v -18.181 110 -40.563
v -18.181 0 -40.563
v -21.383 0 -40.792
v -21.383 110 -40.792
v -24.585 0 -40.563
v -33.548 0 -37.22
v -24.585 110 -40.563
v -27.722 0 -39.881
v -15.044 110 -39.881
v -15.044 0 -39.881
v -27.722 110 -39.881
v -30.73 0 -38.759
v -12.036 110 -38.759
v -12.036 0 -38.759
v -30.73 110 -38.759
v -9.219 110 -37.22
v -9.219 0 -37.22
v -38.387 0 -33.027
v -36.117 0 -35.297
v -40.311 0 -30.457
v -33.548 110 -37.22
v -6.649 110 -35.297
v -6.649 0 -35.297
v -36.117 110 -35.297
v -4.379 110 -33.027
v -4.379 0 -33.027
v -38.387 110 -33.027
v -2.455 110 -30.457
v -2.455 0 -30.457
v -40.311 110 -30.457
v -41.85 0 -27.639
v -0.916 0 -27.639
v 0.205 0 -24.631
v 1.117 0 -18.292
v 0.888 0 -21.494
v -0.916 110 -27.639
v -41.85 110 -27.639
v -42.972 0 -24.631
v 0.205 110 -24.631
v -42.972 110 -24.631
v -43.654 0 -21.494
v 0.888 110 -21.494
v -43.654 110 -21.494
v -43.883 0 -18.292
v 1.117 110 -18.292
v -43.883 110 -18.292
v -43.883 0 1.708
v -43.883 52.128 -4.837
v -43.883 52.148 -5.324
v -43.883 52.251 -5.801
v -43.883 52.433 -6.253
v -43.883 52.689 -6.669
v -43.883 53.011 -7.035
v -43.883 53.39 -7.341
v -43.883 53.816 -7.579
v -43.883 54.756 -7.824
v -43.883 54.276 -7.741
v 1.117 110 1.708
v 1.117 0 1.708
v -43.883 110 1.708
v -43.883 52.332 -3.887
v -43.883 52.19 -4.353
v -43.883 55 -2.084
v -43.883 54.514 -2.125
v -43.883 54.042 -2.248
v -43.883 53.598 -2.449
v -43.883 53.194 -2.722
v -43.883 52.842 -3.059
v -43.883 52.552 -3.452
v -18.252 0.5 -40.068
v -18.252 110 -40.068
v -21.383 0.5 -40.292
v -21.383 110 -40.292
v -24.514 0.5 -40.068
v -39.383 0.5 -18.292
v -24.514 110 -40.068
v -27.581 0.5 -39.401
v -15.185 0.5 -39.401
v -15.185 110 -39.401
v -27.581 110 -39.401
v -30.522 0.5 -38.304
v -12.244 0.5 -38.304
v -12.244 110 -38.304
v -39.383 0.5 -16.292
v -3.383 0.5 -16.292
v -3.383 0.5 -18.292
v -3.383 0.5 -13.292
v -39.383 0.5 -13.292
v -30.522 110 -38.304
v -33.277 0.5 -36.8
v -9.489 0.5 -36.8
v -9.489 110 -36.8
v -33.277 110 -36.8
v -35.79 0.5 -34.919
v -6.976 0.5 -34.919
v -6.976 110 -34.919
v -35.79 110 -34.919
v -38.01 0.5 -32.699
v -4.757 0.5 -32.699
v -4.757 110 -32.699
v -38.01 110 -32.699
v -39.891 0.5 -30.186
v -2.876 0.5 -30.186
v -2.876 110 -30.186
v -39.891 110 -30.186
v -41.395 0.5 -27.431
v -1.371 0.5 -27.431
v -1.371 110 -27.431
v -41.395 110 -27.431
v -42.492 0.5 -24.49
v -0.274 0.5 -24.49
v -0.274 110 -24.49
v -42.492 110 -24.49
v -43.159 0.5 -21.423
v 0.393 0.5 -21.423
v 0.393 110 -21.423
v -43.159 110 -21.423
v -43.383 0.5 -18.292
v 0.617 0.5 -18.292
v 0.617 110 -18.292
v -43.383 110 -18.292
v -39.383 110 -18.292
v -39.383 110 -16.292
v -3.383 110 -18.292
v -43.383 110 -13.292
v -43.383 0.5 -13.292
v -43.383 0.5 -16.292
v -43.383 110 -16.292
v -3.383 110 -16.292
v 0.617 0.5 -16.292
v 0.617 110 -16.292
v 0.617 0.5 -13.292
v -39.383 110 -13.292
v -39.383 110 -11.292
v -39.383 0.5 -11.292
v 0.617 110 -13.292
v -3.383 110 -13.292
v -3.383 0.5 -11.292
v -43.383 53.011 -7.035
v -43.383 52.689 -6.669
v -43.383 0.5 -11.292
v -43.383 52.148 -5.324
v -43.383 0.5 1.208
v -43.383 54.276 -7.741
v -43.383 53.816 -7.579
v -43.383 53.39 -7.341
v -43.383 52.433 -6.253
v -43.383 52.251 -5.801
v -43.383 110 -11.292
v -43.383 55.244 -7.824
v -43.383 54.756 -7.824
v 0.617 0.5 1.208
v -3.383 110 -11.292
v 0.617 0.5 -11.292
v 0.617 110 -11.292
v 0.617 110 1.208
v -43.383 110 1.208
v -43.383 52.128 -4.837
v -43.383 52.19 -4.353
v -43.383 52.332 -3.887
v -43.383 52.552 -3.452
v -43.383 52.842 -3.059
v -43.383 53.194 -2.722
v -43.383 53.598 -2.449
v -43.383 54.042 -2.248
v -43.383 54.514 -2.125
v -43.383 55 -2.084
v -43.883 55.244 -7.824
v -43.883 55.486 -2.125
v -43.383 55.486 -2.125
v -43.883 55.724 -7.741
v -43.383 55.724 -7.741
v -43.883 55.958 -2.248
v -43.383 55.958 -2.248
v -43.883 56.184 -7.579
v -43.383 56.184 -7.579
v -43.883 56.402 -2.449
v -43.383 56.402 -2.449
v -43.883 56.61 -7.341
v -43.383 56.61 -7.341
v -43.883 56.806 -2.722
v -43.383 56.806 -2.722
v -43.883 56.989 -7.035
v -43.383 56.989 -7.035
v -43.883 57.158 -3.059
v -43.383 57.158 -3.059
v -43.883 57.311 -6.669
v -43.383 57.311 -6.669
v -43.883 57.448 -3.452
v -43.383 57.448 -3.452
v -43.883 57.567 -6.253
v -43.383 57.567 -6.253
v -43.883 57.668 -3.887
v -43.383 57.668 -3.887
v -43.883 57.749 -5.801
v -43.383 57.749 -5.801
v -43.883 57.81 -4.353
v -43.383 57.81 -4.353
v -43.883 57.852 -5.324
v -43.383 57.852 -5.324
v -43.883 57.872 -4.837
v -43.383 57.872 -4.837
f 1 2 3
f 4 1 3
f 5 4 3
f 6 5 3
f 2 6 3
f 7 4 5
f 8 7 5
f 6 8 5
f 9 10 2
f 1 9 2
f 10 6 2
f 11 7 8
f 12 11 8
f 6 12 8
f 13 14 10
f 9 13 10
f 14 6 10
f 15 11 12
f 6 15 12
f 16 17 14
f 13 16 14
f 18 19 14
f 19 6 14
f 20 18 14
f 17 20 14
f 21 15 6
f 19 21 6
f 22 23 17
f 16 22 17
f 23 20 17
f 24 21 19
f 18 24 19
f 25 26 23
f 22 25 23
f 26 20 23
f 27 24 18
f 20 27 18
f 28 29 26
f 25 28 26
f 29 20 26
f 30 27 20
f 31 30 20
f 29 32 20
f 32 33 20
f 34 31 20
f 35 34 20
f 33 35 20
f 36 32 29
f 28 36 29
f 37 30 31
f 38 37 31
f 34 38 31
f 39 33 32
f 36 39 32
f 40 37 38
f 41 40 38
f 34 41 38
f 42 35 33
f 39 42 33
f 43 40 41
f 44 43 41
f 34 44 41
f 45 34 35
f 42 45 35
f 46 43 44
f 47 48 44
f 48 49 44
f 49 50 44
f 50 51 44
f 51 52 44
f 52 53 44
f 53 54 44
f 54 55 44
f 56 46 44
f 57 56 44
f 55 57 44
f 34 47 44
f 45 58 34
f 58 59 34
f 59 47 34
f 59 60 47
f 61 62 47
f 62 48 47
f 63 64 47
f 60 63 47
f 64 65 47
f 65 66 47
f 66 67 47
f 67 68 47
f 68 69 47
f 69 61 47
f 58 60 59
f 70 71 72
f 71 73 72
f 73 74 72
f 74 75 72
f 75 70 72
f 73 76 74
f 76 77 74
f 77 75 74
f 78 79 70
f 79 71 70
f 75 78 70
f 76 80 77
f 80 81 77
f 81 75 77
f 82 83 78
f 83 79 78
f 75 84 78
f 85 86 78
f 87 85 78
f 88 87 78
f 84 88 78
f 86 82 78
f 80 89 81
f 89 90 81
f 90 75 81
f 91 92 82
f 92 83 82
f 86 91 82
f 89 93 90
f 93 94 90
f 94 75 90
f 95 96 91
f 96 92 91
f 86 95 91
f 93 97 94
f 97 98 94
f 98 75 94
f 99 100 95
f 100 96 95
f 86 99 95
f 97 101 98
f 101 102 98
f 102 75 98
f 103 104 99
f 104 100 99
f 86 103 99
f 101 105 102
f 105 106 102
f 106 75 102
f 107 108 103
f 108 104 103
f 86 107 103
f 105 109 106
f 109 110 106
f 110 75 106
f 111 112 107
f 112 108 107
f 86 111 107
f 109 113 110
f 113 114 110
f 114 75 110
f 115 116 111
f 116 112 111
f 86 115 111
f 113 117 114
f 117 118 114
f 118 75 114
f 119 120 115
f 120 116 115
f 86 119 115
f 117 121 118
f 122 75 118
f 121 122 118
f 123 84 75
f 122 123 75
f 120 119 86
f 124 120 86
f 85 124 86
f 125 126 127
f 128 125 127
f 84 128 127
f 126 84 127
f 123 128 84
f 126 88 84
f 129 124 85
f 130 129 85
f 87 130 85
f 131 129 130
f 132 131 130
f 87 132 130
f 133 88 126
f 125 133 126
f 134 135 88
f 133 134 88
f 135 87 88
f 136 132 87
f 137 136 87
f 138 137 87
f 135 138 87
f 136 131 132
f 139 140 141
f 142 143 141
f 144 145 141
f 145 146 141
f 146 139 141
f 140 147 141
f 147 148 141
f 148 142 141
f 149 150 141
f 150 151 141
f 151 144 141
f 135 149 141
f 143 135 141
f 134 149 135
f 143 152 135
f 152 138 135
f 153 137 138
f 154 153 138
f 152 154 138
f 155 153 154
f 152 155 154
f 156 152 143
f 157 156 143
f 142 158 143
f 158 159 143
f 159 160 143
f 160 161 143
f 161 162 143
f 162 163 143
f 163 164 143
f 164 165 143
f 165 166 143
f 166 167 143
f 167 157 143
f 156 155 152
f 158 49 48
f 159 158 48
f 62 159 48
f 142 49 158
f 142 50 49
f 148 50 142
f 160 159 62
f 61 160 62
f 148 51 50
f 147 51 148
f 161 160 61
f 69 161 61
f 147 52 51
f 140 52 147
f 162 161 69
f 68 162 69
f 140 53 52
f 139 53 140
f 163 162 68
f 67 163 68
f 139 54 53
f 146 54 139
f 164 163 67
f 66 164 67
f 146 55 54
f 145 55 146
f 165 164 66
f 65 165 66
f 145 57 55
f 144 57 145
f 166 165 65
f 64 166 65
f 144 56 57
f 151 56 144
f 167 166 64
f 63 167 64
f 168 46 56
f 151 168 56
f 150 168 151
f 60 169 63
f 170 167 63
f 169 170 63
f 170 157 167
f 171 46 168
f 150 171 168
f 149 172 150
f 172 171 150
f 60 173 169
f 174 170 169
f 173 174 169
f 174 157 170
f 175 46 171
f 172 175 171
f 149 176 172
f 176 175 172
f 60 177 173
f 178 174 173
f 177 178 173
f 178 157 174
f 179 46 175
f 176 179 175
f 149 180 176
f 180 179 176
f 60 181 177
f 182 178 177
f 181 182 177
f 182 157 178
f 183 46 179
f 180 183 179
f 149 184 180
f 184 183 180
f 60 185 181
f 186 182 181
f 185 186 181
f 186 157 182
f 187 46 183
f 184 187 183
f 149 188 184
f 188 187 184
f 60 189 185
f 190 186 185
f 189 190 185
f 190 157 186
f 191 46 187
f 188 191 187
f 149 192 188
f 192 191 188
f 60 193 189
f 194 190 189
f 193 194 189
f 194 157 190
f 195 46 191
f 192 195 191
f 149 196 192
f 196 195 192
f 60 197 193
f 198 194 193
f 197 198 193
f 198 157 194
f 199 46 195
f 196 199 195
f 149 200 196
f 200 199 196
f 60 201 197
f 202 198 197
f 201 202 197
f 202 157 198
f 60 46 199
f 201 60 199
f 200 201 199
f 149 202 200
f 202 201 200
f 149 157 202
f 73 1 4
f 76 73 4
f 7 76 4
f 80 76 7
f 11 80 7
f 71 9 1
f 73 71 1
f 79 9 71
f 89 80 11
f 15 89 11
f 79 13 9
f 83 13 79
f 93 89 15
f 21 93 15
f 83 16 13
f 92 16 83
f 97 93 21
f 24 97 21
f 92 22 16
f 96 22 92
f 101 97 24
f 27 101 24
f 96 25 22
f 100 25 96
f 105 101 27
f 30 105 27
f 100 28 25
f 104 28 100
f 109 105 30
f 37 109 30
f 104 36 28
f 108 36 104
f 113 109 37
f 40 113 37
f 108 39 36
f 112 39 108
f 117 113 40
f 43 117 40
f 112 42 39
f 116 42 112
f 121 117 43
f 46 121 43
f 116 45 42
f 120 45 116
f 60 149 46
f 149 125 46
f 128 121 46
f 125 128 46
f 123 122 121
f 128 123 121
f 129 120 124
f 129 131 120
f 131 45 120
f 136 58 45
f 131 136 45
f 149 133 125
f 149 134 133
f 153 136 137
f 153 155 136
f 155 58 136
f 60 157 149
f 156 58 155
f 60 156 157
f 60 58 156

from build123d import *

# Parameters (mm, degrees)
BOSS_EXTRUDE1_DEPTH = 110
CUT_EXTRUDE1_DEPTH  = 109.5
SKETCH3_R           = 2.875
CUT_EXTRUDE2_DEPTH  = 5


with BuildPart() as part:
    # Sketch1 → Boss-Extrude1 (new body)
    with BuildSketch(Plane(origin=(0, 0, 0), x_dir=(1, 0, 0), z_dir=(0, 1, 0))):
        with BuildLine():
            Line((-43.883093525, -1.707733813), (1.116906475, -1.707733813))
            Line((1.116906475, -1.707733813), (1.116906475, 18.292266187))
            ThreePointArc((1.116906475, 18.292266187), (-21.383093525, 40.792266187), (-43.883093525, 18.292266187))
            Line((-43.883093525, 18.292266187), (-43.883093525, -1.707733813))
        make_face()
    extrude(amount=BOSS_EXTRUDE1_DEPTH)

    # Sketch2 → Cut-Extrude1 (cut)
    with BuildSketch(Plane(origin=(0, 110, 0), x_dir=(1, 0, 0), z_dir=(0, 1, 0))):
        with BuildLine():
            Line((-43.383093525, 16.292266187), (-43.383093525, 13.292266187))
            Line((-43.383093525, 13.292266187), (-39.383093525, 13.292266187))
            Line((-39.383093525, 13.292266187), (-39.383093525, 11.292266187))
            Line((-39.383093525, 11.292266187), (-43.383093525, 11.292266187))
            Line((-43.383093525, 11.292266187), (-43.383093525, -1.207733813))
            Line((-43.383093525, -1.207733813), (0.616906475, -1.207733813))
            Line((0.616906475, -1.207733813), (0.616906475, 11.292266187))
            Line((0.616906475, 11.292266187), (-3.383093525, 11.292266187))
            Line((-3.383093525, 11.292266187), (-3.383093525, 13.292266187))
            Line((-3.383093525, 13.292266187), (0.616906475, 13.292266187))
            Line((0.616906475, 13.292266187), (0.616906475, 16.292266187))
            Line((0.616906475, 16.292266187), (-3.383093525, 16.292266187))
            Line((-3.383093525, 16.292266187), (-3.383093525, 18.292266187))
            Line((-3.383093525, 18.292266187), (0.616906475, 18.292266187))
            ThreePointArc((0.616906475, 18.292266187), (-21.383093525, 40.292266187), (-43.383093525, 18.292266187))
            Line((-43.383093525, 18.292266187), (-39.383093525, 18.292266187))
            Line((-39.383093525, 18.292266187), (-39.383093525, 16.292266187))
            Line((-39.383093525, 16.292266187), (-43.383093525, 16.292266187))
        make_face()
    extrude(amount=-CUT_EXTRUDE1_DEPTH, mode=Mode.SUBTRACT)

    # Sketch3 → Cut-Extrude2 (cut)
    with BuildSketch(Plane.ZY.offset(43.883093525)):
        with Locations((-4.958932854, 55)):
            Circle(SKETCH3_R)
    extrude(amount=-CUT_EXTRUDE2_DEPTH, mode=Mode.SUBTRACT)


solid = part.part
